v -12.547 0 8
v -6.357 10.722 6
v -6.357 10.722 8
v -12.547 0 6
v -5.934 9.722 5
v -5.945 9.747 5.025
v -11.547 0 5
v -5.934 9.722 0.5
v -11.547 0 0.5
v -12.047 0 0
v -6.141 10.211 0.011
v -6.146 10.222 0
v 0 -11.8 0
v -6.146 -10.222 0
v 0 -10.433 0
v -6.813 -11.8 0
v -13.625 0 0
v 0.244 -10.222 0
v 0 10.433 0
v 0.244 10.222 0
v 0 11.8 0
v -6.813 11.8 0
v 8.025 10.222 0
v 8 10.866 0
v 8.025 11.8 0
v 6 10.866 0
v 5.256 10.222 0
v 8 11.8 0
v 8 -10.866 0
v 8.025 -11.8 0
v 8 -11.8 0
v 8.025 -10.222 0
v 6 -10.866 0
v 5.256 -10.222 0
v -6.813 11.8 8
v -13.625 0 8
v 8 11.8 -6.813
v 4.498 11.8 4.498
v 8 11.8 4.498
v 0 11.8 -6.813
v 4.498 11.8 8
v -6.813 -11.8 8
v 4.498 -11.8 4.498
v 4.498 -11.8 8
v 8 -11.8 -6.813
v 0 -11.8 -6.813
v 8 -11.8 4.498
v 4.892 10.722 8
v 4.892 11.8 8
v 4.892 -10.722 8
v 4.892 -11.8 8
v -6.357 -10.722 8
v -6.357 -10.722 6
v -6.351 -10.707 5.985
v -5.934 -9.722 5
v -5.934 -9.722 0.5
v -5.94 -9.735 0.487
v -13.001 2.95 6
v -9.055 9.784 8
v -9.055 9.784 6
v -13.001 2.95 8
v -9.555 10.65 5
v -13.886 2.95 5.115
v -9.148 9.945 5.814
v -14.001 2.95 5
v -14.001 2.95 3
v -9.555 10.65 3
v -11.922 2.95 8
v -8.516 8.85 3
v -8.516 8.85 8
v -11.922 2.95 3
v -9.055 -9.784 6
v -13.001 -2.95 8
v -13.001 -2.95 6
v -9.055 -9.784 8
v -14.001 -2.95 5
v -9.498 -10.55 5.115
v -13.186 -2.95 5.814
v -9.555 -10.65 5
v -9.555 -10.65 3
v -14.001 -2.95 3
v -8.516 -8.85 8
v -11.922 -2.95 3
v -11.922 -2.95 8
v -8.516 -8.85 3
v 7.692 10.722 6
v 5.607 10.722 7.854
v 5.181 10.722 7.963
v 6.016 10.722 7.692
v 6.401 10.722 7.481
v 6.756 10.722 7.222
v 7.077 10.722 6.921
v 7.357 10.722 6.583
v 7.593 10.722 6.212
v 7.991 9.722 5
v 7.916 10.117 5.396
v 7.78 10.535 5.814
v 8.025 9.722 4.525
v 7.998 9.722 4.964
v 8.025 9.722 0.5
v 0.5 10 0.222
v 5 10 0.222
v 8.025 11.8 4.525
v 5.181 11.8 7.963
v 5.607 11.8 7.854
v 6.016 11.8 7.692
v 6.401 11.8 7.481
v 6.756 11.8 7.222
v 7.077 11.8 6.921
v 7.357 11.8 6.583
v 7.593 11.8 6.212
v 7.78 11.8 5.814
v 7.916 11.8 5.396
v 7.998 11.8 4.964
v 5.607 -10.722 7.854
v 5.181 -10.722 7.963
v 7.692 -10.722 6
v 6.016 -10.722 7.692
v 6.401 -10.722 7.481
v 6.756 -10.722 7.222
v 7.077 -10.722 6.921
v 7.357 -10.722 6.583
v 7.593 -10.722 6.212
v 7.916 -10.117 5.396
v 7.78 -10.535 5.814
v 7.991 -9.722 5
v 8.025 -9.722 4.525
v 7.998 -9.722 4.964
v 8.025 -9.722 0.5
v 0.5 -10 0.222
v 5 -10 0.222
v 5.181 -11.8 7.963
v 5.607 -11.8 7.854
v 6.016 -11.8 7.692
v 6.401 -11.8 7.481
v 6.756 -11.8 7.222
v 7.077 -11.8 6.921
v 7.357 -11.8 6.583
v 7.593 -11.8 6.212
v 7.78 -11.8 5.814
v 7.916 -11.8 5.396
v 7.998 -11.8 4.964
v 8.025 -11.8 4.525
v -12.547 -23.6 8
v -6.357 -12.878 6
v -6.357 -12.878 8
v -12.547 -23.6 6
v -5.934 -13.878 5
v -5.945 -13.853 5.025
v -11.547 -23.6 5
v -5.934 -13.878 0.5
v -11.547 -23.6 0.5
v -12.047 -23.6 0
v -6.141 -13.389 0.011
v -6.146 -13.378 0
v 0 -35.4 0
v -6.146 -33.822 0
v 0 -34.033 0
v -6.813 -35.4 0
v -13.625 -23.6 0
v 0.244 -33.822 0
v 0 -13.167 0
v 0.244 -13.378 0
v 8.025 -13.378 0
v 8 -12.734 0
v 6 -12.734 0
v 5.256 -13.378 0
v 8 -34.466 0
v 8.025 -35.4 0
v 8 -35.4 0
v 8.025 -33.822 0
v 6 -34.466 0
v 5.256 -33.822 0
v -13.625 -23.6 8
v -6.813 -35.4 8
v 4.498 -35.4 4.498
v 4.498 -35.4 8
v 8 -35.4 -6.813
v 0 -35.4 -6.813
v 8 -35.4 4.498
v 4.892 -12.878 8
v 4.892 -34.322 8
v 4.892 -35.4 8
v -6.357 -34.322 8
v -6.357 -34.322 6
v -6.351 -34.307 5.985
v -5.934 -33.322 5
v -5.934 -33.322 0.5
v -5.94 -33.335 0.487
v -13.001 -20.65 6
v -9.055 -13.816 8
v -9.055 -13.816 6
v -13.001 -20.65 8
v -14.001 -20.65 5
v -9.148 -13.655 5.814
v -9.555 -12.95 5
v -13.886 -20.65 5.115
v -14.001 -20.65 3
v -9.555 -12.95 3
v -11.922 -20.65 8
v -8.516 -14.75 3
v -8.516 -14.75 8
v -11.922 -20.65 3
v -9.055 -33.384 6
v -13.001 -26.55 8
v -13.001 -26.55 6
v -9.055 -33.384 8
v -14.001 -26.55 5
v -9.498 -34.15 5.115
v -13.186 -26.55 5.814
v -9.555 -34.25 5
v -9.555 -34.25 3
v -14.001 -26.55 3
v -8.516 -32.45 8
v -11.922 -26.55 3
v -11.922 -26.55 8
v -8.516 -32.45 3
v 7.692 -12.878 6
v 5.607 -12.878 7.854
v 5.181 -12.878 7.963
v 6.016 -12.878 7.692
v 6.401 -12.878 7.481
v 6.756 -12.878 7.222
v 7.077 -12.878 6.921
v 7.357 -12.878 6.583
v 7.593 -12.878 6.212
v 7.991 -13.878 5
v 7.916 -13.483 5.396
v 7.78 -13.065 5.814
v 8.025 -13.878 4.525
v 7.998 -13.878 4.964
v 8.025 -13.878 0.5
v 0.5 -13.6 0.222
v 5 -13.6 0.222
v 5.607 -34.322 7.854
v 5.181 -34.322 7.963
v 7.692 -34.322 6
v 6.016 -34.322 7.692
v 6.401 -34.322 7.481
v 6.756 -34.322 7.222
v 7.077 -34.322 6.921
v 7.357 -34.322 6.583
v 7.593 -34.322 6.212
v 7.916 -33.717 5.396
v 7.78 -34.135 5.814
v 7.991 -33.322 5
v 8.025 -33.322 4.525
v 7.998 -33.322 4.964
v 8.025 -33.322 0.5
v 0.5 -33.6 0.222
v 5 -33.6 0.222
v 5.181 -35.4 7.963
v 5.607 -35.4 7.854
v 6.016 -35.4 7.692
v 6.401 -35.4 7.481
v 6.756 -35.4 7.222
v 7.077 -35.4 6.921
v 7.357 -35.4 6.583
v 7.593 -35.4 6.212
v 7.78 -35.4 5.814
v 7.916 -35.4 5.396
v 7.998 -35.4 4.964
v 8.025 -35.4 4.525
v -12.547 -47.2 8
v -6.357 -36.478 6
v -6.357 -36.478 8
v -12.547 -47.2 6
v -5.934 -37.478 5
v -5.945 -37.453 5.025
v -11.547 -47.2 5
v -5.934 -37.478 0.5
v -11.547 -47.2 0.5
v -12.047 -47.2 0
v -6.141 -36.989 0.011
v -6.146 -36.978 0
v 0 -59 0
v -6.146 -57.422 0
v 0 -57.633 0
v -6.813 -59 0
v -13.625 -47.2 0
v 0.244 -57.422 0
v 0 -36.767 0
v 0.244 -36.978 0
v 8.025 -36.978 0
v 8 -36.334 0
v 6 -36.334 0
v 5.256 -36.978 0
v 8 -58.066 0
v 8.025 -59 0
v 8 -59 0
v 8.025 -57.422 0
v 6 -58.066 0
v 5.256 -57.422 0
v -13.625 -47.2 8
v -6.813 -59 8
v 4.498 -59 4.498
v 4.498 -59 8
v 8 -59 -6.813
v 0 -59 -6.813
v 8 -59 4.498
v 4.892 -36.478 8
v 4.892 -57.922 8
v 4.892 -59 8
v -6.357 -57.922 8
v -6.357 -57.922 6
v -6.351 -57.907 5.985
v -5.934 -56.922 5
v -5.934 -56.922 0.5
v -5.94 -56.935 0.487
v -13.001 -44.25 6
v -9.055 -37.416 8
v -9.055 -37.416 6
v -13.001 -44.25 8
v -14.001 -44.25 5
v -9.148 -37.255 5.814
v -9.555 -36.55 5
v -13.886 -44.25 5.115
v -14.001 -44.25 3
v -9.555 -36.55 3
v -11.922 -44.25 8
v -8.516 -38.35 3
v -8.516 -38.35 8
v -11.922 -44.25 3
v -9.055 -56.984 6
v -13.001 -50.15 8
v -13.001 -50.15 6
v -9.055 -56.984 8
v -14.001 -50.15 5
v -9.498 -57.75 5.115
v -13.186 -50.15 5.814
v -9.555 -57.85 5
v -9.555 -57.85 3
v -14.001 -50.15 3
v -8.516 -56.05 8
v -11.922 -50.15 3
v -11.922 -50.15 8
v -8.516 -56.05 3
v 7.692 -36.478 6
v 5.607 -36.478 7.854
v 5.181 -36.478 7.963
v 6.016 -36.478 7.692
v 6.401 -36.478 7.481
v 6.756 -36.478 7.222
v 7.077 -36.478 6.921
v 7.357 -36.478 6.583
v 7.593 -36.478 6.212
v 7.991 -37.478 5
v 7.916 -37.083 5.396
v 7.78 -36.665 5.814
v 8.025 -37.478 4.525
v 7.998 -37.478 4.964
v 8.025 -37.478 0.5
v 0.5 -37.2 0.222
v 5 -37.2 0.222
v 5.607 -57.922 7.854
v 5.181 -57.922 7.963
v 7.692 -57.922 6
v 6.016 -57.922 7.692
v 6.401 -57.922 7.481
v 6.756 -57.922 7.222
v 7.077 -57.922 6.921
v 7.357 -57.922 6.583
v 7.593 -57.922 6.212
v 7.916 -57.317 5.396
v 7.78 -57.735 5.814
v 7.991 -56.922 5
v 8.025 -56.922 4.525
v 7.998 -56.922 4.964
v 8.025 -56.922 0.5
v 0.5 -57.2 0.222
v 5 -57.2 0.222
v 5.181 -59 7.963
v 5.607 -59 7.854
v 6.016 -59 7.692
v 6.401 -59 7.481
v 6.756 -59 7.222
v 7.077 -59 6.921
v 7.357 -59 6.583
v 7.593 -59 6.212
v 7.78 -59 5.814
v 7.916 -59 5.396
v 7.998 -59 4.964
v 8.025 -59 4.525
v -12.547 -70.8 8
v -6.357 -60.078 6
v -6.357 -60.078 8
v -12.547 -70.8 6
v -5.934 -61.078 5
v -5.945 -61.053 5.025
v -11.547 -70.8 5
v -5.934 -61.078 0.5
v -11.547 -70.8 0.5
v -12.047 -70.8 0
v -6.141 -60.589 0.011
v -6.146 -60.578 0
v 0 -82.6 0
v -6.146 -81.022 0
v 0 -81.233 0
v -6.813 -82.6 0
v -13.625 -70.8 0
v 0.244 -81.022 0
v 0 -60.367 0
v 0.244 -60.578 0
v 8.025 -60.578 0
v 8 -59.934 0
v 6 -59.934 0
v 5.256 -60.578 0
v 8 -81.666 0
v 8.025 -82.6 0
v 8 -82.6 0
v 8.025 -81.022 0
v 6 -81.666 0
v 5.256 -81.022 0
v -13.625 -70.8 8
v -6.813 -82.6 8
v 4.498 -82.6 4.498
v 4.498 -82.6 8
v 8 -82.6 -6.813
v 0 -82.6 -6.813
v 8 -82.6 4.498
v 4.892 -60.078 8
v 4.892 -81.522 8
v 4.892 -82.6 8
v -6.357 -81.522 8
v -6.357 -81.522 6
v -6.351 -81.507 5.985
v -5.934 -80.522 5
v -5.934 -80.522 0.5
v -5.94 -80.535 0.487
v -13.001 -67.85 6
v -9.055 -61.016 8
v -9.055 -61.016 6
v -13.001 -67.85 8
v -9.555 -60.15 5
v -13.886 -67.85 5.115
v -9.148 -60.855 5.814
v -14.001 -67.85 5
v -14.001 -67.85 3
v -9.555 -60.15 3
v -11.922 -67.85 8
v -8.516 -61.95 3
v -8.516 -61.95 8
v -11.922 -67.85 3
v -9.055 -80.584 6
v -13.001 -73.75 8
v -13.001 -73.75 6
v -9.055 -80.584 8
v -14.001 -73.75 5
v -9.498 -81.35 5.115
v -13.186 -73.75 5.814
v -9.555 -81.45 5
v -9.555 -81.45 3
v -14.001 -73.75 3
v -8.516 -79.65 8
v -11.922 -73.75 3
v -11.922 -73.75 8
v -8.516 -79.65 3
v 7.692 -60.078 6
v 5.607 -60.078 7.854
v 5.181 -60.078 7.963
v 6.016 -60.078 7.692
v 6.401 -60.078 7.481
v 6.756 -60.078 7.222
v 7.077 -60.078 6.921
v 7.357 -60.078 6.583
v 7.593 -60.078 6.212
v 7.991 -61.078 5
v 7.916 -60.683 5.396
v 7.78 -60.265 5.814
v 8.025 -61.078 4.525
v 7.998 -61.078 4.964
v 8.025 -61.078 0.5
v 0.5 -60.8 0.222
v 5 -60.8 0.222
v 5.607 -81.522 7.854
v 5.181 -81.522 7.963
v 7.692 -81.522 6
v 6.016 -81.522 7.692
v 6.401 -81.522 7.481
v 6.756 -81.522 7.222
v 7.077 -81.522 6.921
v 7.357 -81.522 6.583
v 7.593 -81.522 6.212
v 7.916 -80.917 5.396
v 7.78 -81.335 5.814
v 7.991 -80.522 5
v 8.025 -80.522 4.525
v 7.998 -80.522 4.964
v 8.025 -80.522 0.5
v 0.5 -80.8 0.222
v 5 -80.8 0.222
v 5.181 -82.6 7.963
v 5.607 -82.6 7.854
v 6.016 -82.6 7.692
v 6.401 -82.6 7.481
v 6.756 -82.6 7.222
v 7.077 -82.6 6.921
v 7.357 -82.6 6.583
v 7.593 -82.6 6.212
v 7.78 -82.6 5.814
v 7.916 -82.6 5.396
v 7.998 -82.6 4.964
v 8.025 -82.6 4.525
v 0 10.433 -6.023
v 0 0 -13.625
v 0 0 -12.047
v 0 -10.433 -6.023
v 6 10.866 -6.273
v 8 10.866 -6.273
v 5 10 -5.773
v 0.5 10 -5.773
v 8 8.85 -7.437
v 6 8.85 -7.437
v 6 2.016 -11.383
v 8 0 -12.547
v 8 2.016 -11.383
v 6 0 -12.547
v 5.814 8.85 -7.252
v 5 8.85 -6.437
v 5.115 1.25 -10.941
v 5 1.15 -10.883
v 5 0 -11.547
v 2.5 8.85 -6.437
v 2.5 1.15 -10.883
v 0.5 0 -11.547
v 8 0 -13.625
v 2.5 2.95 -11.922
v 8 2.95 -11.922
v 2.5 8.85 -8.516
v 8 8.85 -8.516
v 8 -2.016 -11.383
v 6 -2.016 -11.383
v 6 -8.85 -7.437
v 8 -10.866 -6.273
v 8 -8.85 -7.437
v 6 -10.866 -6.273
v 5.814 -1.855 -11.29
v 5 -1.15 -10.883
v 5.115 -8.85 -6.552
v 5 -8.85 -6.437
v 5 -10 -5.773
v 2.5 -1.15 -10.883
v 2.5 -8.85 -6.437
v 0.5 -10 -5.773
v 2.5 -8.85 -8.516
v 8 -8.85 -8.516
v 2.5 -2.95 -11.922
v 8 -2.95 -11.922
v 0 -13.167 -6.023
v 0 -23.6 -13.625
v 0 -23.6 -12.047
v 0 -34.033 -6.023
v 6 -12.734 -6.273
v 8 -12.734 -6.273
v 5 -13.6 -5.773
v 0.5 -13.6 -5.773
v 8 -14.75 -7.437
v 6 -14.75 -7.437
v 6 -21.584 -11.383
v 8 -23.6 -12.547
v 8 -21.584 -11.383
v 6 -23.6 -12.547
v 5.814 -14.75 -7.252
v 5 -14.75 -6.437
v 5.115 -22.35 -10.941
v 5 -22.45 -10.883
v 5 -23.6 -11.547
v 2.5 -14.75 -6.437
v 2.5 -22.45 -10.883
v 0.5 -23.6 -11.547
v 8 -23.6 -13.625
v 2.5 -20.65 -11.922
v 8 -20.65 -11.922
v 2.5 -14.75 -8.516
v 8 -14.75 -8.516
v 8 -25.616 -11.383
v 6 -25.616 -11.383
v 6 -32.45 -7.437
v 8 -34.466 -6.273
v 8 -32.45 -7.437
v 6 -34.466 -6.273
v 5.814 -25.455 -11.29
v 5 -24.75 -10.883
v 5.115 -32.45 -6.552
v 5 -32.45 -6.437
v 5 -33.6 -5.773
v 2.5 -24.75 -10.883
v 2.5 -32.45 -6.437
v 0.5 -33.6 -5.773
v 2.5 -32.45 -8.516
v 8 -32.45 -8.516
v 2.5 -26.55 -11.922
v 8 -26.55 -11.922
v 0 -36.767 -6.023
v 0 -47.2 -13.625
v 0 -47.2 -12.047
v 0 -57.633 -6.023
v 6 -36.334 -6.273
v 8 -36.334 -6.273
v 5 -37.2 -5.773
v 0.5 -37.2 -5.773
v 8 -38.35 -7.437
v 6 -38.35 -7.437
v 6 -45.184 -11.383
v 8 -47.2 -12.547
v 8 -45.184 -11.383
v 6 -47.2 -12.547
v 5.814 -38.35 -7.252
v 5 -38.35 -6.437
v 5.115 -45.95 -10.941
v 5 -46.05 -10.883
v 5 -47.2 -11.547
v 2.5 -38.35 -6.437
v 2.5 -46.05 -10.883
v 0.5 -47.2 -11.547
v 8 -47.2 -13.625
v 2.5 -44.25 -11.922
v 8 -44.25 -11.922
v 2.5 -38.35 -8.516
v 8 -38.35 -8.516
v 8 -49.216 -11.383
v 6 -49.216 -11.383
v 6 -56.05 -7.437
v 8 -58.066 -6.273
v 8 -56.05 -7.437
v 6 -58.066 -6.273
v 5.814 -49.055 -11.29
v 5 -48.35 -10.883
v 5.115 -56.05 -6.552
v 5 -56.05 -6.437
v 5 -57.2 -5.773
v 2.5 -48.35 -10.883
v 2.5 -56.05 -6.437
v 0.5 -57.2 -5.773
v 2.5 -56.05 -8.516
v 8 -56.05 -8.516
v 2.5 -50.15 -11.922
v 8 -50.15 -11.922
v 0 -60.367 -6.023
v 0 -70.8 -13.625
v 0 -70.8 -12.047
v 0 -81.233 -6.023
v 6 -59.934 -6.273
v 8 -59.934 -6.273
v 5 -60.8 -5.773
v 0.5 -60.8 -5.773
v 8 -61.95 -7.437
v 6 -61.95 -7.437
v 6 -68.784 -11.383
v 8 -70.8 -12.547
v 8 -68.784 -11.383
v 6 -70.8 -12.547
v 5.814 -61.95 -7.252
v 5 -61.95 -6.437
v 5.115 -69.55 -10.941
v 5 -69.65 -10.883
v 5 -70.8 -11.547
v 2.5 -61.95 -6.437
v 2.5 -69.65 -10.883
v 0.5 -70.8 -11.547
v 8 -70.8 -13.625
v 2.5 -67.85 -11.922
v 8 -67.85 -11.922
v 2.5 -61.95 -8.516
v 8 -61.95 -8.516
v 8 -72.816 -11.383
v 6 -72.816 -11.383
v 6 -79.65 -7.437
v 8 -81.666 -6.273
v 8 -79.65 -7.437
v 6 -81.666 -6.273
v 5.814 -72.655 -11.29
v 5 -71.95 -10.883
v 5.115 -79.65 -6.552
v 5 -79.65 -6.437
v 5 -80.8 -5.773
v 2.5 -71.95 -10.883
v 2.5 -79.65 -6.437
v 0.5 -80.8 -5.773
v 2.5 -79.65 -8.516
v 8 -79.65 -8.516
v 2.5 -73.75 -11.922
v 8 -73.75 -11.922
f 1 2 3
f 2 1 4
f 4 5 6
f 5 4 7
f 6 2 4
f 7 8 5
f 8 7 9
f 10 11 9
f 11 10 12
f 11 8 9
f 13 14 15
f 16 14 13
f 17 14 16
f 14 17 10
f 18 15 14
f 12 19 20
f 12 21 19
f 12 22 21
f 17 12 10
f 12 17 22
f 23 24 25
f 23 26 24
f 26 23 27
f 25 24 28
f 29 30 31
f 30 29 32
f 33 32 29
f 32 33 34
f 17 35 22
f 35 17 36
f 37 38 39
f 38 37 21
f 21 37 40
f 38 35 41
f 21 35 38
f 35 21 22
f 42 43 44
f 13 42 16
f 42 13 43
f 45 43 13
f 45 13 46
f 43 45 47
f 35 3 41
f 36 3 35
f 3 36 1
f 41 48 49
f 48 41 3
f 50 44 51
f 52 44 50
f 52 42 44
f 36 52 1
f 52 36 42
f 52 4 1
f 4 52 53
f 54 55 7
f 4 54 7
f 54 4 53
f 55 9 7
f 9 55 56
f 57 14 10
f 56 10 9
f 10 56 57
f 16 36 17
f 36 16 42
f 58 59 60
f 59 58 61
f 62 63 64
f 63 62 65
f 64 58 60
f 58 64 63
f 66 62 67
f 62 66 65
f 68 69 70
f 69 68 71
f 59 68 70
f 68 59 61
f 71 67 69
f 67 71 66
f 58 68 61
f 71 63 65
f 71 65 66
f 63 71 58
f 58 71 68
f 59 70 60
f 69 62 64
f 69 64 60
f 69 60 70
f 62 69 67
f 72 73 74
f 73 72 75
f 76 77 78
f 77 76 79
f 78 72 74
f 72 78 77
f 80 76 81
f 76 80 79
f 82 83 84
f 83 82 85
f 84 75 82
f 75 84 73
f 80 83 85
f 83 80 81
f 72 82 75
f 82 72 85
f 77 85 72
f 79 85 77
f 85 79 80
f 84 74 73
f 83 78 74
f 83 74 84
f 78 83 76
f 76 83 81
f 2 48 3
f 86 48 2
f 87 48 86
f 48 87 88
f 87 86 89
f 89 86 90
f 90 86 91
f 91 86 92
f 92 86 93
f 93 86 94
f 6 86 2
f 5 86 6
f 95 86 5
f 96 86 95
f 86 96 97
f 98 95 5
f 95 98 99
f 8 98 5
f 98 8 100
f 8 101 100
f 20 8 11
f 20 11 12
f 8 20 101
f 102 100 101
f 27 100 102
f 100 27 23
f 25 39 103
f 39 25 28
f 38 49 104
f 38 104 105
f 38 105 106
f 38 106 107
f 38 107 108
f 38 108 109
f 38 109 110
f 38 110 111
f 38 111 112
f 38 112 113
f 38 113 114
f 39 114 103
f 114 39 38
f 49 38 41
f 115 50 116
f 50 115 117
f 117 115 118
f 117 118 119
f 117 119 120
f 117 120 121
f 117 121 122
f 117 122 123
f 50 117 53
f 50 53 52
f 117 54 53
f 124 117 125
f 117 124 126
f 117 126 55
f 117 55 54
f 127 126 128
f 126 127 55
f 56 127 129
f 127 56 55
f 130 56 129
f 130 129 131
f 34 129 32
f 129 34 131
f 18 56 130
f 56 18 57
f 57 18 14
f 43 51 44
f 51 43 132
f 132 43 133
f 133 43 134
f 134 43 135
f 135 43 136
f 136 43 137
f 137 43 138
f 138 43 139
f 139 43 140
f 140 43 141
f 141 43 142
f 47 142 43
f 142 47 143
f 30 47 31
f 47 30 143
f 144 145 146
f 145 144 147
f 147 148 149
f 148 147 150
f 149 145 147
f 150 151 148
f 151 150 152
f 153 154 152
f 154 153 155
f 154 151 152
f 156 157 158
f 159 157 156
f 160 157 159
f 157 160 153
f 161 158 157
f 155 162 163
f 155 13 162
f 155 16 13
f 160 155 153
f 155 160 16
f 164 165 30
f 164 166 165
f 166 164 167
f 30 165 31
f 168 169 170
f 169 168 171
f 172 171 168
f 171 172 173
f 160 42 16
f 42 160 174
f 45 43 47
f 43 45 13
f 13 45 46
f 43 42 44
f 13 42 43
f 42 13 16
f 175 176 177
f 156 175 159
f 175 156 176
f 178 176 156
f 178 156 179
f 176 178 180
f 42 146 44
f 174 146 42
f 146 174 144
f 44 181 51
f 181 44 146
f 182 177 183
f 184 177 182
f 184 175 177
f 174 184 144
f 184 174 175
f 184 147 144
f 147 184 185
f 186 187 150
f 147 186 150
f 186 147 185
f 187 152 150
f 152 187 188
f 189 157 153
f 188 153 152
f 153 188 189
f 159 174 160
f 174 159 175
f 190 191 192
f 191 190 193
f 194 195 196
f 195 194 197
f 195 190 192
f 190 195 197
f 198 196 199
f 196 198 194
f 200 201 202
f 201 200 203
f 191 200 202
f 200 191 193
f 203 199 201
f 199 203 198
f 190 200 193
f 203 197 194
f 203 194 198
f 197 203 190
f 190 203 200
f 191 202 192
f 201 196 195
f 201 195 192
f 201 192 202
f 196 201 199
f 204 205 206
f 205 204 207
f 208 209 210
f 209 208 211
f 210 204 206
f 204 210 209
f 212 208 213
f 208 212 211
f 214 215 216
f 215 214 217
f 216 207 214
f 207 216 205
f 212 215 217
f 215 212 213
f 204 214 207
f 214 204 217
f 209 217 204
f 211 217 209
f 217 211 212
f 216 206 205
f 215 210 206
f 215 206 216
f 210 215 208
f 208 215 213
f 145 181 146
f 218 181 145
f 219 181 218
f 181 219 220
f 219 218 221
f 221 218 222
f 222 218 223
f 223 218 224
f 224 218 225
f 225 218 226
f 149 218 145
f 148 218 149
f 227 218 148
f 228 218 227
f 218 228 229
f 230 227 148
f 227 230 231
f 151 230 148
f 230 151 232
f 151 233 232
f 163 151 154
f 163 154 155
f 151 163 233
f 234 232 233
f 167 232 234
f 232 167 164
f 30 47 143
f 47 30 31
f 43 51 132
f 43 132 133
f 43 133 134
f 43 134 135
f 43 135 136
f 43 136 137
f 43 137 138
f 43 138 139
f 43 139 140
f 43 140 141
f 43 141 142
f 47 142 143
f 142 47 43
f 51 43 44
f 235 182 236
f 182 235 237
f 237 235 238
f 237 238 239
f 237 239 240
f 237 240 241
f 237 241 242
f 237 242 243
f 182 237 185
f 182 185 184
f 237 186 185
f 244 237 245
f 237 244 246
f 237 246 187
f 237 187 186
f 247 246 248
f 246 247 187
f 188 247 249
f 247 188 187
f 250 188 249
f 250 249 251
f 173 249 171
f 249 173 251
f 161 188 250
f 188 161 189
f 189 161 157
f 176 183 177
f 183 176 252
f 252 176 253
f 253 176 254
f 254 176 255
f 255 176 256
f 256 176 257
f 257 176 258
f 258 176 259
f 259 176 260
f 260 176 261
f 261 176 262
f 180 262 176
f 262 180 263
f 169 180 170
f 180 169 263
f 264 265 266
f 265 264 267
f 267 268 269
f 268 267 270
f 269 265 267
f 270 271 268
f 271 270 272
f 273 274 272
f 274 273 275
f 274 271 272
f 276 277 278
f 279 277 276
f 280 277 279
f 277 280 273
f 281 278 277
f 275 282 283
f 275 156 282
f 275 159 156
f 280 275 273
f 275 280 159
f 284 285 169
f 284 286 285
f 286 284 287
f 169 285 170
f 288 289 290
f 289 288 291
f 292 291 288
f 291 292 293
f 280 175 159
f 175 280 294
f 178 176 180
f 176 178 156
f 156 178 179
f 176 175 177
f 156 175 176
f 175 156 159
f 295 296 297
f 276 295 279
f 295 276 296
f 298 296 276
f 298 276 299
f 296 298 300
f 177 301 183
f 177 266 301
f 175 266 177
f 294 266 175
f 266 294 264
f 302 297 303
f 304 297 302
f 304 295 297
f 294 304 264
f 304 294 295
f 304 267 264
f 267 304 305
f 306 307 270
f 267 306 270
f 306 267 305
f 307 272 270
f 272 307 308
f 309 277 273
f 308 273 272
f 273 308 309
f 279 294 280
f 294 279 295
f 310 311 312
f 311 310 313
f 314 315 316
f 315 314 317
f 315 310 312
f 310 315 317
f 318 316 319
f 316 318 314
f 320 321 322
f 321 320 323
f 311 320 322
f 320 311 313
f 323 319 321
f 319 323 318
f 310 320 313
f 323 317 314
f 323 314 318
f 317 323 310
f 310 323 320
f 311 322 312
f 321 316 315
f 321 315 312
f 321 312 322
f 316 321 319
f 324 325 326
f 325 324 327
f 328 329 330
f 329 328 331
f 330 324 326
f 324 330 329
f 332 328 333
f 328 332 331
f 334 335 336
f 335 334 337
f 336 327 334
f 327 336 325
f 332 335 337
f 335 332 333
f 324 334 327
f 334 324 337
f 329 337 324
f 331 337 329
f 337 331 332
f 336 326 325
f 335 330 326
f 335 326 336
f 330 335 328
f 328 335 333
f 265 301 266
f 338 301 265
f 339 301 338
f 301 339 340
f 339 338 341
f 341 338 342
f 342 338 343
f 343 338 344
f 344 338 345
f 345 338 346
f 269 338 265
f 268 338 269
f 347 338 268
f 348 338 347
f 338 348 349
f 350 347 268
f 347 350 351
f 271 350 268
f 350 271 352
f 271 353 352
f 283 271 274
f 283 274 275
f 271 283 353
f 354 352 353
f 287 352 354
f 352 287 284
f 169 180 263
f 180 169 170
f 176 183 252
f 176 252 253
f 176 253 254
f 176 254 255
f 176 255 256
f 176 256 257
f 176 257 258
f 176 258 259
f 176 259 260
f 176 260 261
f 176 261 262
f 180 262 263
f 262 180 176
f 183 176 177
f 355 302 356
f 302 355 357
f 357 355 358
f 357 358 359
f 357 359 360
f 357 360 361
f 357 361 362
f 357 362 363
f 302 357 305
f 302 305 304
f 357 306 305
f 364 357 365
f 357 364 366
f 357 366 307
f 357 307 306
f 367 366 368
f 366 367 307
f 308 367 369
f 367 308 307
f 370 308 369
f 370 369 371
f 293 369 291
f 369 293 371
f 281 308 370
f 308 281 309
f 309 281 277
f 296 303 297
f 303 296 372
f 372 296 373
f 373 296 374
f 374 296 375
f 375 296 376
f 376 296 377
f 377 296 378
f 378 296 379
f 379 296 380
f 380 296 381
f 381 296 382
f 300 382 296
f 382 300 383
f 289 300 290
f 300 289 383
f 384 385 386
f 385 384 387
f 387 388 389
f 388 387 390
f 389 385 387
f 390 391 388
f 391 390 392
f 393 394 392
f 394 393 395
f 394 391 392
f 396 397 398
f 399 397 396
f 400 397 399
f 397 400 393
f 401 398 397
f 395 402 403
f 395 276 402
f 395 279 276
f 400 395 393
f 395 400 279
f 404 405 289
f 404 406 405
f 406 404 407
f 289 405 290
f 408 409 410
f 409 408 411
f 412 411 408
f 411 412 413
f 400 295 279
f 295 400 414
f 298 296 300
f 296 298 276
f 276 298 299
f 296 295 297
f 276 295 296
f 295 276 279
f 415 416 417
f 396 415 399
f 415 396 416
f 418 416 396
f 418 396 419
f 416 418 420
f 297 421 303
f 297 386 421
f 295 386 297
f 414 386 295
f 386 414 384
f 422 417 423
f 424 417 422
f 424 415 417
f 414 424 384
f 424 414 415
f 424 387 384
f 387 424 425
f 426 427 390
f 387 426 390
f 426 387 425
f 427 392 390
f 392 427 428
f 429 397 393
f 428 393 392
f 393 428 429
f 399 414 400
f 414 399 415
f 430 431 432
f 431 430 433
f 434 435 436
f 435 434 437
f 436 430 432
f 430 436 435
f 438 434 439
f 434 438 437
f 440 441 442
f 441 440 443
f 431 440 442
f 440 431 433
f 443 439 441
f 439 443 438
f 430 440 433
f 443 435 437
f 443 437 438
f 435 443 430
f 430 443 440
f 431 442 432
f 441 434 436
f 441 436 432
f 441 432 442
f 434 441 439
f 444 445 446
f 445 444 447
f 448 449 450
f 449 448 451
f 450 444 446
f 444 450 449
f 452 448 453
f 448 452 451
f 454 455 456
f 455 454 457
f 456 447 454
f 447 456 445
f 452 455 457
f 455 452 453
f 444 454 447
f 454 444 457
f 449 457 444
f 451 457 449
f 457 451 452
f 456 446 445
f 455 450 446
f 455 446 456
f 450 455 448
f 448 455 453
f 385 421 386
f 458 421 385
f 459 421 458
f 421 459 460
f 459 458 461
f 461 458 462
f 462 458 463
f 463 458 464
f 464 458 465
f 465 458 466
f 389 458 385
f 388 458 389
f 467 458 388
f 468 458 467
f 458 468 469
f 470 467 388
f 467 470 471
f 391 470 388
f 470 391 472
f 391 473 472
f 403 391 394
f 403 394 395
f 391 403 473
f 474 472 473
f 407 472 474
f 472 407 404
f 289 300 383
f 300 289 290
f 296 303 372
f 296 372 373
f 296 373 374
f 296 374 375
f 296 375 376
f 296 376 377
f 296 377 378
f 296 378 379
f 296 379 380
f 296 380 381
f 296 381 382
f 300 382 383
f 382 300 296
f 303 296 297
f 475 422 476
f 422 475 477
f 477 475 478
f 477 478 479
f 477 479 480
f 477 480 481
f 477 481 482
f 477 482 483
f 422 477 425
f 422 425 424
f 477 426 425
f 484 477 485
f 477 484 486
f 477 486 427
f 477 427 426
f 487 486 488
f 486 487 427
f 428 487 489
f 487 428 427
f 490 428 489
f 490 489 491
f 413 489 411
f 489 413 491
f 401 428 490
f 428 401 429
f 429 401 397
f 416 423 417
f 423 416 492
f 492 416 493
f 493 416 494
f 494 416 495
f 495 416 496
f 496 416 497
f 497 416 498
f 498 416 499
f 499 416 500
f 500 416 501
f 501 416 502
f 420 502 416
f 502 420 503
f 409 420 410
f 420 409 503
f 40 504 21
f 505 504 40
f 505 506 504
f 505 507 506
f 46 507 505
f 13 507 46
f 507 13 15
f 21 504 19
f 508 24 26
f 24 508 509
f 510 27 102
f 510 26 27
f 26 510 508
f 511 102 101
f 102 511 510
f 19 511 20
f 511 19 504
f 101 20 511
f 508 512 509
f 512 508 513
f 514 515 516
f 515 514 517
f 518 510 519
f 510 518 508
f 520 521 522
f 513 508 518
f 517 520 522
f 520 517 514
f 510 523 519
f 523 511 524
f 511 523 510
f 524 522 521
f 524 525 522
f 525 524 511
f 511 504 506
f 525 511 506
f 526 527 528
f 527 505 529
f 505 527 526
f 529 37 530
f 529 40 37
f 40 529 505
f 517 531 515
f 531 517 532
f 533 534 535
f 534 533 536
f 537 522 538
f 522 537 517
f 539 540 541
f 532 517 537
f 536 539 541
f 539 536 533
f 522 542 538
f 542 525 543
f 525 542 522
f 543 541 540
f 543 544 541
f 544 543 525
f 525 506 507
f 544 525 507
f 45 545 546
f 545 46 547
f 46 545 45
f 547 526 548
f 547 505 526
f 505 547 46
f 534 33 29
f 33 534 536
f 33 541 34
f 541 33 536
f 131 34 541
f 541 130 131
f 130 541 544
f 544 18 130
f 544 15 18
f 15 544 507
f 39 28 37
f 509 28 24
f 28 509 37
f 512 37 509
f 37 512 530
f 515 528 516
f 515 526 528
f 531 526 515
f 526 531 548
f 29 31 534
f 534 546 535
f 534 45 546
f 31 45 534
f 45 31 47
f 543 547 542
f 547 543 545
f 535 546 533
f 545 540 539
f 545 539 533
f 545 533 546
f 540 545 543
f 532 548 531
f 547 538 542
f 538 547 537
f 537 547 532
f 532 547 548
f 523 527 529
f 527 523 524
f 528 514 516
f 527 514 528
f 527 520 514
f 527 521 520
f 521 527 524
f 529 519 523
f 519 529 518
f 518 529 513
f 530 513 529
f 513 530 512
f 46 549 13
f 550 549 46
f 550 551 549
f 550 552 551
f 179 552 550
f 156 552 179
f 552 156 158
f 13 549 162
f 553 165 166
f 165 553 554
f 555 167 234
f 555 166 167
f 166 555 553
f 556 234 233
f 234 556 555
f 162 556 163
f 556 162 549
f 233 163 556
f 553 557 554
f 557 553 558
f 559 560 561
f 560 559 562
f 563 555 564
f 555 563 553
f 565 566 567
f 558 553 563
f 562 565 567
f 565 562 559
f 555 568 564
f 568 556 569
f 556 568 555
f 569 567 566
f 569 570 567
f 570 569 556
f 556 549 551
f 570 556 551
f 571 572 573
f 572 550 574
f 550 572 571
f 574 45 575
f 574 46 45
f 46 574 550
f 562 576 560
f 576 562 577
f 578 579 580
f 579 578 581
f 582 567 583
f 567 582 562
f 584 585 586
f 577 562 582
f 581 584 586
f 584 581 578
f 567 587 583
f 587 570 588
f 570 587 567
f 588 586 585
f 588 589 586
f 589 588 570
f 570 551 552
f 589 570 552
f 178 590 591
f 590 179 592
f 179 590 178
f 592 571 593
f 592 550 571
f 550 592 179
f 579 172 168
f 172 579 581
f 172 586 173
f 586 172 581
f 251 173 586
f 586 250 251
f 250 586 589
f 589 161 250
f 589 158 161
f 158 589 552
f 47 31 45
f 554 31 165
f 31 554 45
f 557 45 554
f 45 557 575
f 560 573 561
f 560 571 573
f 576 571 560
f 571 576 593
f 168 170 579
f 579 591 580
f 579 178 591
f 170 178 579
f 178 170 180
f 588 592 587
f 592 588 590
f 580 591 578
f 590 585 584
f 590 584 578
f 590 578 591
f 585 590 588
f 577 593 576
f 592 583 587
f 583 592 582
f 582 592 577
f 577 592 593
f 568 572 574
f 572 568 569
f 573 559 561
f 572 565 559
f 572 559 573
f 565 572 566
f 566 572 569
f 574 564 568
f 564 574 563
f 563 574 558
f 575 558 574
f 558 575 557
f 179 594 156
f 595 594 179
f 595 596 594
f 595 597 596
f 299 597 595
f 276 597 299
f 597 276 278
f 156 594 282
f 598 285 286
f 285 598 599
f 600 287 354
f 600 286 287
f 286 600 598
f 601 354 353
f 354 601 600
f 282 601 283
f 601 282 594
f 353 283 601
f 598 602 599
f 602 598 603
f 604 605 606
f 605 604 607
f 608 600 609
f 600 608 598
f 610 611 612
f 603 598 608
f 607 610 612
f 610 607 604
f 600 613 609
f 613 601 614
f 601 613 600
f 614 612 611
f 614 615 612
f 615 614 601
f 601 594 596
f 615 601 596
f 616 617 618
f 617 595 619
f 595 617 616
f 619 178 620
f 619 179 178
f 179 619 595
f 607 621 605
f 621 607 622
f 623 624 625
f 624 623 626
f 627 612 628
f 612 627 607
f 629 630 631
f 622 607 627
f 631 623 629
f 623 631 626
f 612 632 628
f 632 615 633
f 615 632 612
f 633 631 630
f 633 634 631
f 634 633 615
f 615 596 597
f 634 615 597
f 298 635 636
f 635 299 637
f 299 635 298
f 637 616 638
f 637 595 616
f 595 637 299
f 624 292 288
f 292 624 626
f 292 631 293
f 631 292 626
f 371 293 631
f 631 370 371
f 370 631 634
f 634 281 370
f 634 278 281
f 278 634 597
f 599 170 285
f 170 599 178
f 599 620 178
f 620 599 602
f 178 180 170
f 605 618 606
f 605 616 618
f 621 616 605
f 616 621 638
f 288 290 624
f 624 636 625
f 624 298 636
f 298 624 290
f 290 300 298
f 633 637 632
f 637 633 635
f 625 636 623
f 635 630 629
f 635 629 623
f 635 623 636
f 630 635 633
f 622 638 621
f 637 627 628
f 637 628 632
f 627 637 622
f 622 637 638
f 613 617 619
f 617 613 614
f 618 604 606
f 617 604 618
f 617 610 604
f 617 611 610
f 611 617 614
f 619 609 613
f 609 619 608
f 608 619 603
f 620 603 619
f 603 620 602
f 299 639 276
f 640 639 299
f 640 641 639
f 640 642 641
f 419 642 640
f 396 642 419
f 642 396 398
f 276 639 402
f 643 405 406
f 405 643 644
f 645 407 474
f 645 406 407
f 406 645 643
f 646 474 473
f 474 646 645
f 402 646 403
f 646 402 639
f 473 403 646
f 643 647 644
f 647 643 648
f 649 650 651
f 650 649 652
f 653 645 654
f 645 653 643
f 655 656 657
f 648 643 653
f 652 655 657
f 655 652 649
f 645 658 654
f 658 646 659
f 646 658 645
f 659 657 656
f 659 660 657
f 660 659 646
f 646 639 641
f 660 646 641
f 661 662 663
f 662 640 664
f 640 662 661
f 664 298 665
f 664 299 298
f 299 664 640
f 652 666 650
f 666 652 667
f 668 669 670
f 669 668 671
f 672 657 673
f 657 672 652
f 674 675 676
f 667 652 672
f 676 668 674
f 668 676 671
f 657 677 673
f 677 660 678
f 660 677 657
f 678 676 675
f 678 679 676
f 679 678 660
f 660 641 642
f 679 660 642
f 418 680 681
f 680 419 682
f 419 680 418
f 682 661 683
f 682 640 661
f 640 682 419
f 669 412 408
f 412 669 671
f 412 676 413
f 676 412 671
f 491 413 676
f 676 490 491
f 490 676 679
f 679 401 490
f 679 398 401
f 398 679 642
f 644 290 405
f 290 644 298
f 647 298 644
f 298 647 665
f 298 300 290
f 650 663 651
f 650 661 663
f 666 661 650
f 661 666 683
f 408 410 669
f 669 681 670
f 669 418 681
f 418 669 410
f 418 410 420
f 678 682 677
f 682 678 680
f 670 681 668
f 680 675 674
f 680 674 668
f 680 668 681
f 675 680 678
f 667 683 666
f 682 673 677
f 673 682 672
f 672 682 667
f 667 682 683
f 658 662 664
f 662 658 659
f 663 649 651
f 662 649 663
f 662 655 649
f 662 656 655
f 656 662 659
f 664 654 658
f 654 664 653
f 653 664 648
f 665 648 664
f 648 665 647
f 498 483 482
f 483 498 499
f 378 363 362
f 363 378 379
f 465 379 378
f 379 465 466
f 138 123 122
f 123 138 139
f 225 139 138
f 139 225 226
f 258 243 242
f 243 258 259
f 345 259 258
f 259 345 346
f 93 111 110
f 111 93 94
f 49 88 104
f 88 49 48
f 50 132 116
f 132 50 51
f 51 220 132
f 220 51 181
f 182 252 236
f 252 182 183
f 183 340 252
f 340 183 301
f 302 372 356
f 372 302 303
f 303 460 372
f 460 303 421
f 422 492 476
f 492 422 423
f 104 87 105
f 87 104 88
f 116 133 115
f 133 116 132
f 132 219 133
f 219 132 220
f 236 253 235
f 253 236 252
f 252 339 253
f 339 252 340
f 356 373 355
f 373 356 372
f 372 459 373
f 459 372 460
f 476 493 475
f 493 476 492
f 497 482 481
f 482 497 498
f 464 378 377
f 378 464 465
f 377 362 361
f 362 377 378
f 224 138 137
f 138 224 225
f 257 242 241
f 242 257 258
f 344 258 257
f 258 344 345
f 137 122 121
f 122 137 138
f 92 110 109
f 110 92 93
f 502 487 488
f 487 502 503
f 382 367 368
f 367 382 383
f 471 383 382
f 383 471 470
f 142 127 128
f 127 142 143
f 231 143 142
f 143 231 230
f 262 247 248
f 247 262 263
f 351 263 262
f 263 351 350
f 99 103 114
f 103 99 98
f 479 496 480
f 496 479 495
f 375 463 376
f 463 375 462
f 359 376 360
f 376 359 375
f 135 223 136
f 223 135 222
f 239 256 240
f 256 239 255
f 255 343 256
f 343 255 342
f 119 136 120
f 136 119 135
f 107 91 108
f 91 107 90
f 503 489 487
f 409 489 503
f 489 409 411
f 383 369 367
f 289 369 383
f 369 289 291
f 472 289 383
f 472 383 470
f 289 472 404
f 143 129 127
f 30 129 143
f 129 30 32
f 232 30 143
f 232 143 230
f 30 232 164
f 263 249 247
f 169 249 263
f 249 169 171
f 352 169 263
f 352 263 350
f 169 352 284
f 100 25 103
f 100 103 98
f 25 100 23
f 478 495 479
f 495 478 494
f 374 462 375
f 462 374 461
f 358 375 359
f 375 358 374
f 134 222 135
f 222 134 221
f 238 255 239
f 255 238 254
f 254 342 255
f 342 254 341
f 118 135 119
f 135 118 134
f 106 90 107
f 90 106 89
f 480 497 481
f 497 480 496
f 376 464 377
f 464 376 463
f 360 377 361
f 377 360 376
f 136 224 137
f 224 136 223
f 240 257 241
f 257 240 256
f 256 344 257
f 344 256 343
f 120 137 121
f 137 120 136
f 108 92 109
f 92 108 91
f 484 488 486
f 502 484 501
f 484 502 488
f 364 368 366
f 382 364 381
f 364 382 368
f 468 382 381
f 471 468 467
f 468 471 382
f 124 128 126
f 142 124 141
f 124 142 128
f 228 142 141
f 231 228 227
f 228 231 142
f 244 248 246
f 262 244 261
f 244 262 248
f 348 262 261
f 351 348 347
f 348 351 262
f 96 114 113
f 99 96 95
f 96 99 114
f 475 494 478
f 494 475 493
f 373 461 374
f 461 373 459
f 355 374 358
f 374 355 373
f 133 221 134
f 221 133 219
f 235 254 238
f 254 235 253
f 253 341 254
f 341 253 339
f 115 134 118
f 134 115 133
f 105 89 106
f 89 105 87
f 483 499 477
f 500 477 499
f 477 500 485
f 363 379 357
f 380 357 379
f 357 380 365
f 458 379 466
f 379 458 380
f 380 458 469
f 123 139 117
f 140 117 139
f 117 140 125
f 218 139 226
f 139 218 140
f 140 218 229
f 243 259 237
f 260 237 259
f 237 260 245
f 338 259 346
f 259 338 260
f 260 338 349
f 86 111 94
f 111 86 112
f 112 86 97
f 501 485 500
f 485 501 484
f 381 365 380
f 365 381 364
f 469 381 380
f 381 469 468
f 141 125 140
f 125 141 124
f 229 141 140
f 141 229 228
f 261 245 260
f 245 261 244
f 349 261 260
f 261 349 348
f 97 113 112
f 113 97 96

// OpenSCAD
// file: honeycomb_element.scad
$fn = 50;

radius = 13.6;
diameter = radius * 2;

h_inner = 10;
r_inner = h_inner * 2 / sqrt(3);

h_outer = 10 + 1.8;
r_outer = h_outer * 2 / sqrt(3);

h_thin = 10 + 1;
r_thin = h_thin * 2 / sqrt(3);

total_height = 8;

small_value = 0.1;

clips_height = 5;
clips_offset = 0.5;
clips_side_offset = 0.00;

module basic_polygon() {
  polygon(
    [
      [r_outer, total_height],
      [r_outer, 0],
      [r_inner + 0.5, 0],
      [r_inner, 0.5],
      [r_inner, total_height - 3],
      [r_inner + 1, total_height - 2],
      [r_inner + 1, total_height],
    ]
  );
}

module basic_model() {
  rotate_extrude($fn=6) {
    basic_polygon();
  }
}

module panel_with_clips(pin_1 = false, pin_2 = false, pin_3 = false, pin_4 = false, pin_5 = false, pin_6 = false, slot_1 = false, slot_2 = false, slot_3 = false, slot_4 = false, slot_5 = false, slot_6 = false) {

  difference() {
    basic_model();

    if (slot_1) {
      rotate([0, 0, 0])
        translate([0, -h_outer * 2, total_height - (clips_height + clips_offset) / 2])
          linear_extrude(height=clips_height + clips_offset, center=true)
            polygon([[clips_side_offset, h_outer / 2], [-clips_side_offset, h_outer / 2], [-r_outer / 2 - clips_side_offset, h_outer * 1.5], [r_outer / 2 + clips_side_offset, h_outer * 1.5]]);
    }

    if (slot_2) {
      rotate([0, 0, 60])
        translate([0, -h_outer * 2, total_height - (clips_height + clips_offset) / 2])
          linear_extrude(height=clips_height + clips_offset, center=true)
            polygon([[clips_side_offset, h_outer / 2], [-clips_side_offset, h_outer / 2], [-r_outer / 2 - clips_side_offset, h_outer * 1.5], [r_outer / 2 + clips_side_offset, h_outer * 1.5]]);
    }

    if (slot_3) {
      rotate([0, 0, 120])
        translate([0, -h_outer * 2, total_height - (clips_height + clips_offset) / 2])
          linear_extrude(height=clips_height + clips_offset, center=true)
            polygon([[clips_side_offset, h_outer / 2], [-clips_side_offset, h_outer / 2], [-r_outer / 2 - clips_side_offset, h_outer * 1.5], [r_outer / 2 + clips_side_offset, h_outer * 1.5]]);
    }

    if (slot_4) {
      rotate([0, 0, 180])
        translate([0, -h_outer * 2, total_height - (clips_height + clips_offset) / 2])
          linear_extrude(height=clips_height + clips_offset, center=true)
            polygon([[clips_side_offset, h_outer / 2], [-clips_side_offset, h_outer / 2], [-r_outer / 2 - clips_side_offset, h_outer * 1.5], [r_outer / 2 + clips_side_offset, h_outer * 1.5]]);
    }

    if (slot_5) {
      rotate([0, 0, 240])
        translate([0, -h_outer * 2, total_height - (clips_height + clips_offset) / 2])
          linear_extrude(height=clips_height + clips_offset, center=true)
            polygon([[clips_side_offset, h_outer / 2], [-clips_side_offset, h_outer / 2], [-r_outer / 2 - clips_side_offset, h_outer * 1.5], [r_outer / 2 + clips_side_offset, h_outer * 1.5]]);
    }

    if (slot_6) {
      rotate([0, 0, 300])
        translate([0, -h_outer * 2, total_height - (clips_height + clips_offset) / 2])
          linear_extrude(height=clips_height + clips_offset, center=true)
            polygon([[clips_side_offset, h_outer / 2], [-clips_side_offset, h_outer / 2], [-r_outer / 2 - clips_side_offset, h_outer * 1.5], [r_outer / 2 + clips_side_offset, h_outer * 1.5]]);
    }
  }

  if (pin_1) {
    intersection() {
      translate([0, -h_outer * 2, 0])
        basic_model();
      translate([0, 0, total_height - clips_height / 2]) {
        rotate([0, 0, -180])
          linear_extrude(height=clips_height, center=true)
            polygon([[0, h_outer / 2], [-r_outer / 2, h_outer * 1.5], [r_outer / 2, h_outer * 1.5]]);
      }
    }
  }

  if (pin_2) {
    intersection() {
      translate([r_outer * 1.5, -h_outer, 0])
        basic_model();
      translate([0, 0, total_height - clips_height / 2]) {
        rotate([0, 0, -120])
          linear_extrude(height=clips_height, center=true)
            polygon([[0, h_outer / 2], [-r_outer / 2, h_outer * 1.5], [r_outer / 2, h_outer * 1.5]]);
      }
    }
  }

  if (pin_3) {
    intersection() {
      translate([r_outer * 1.5, h_outer, 0])
        basic_model();
      translate([0, 0, total_height - clips_height / 2]) {
        rotate([0, 0, -60])
          linear_extrude(height=clips_height, center=true)
            polygon([[0, h_outer / 2], [-r_outer / 2, h_outer * 1.5], [r_outer / 2, h_outer * 1.5]]);
      }
    }
  }

  if (pin_4) {
    intersection() {
      translate([0, h_outer * 2, 0])
        basic_model();

      translate([0, 0, total_height - clips_height / 2]) {
        linear_extrude(height=clips_height, center=true)
          polygon([[0, h_outer / 2], [-r_outer / 2, h_outer * 1.5], [r_outer / 2, h_outer * 1.5]]);
      }
    }
  }

  if (pin_5) {
    intersection() {
      translate([-r_outer * 1.5, h_outer, 0])
        basic_model();
      translate([0, 0, total_height - clips_height / 2]) {
        rotate([0, 0, 60])
          linear_extrude(height=clips_height, center=true)
            polygon([[0, h_outer / 2], [-r_outer / 2, h_outer * 1.5], [r_outer / 2, h_outer * 1.5]]);
      }
    }
  }

  if (pin_6) {
    intersection() {
      translate([-r_outer * 1.5, -h_outer, 0])
        basic_model();

      translate([0, 0, total_height - clips_height / 2]) {
        rotate([0, 0, 120])
          linear_extrude(height=clips_height, center=true)
            polygon([[0, h_outer / 2], [-r_outer / 2, h_outer * 1.5], [r_outer / 2, h_outer * 1.5]]);
      }
    }
  }
}

// end honeycomb_element.scad
// main file
$fn = 50;

h_outer = 10+1.8;
r_outer = h_outer * 2/sqrt(3);



use <honeycomb_element.scad>;



module wall_corner_side_turned_element() {
    difference() {
    panel_with_clips(
        slot_2=true,
        slot_3=true,
        pin_5=true,
        pin_6=true
      );
    
    translate([-(r_outer+r_outer - (r_outer - h_outer)*5),0,0])
      cube([r_outer*2, r_outer*2, r_outer*2], center=true);
    }
    
}

module wall_corner_side_element() {
    difference() {
    panel_with_clips(
        slot_2=true,
        slot_3=true,
        pin_5=true,
        pin_6=true
      );
    
    translate([r_outer+r_outer - (r_outer - h_outer)*5,0,0])
      cube([r_outer*2, r_outer*2, r_outer*2], center=true);
    }
    
    translate([h_outer/2+1, h_outer-r_outer, 0])
      rotate([90, 0, 90])
        linear_extrude(height = r_outer * 2, center=true)
        basic_polygon();
    
    
    translate([h_outer/2+1, -(h_outer-r_outer), 0])
      rotate([90, 0, -90])
        linear_extrude(height = r_outer * 2, center=true)
        basic_polygon();

}

module wall_corner_side() {
    for (i = [0:3]) {    
      translate([0, -i*h_outer*2, 0])
        wall_corner_side_element();
    }
}

module wall_corner_side_turned() {
    for (i = [0:3]) {    
      translate([0, -i*h_outer*2, 0])
        wall_corner_side_turned_element();
    }
}

module wall_corner() {
    corner_radius = 3.5;
    
    intersection() {
      translate([-5.6, -7.5*r_outer*2/2+h_outer, -5.6])
        minkowski() {
            cube([r_outer*2-corner_radius*2, 8*r_outer*2-corner_radius*2, r_outer*2-corner_radius*2], center=true);
            sphere(r=corner_radius);
        }
      union() {
          wall_corner_side();
          rotate([0, 90, 0])
              wall_corner_side_turned();
      }
        
    }
}


wall_corner();
